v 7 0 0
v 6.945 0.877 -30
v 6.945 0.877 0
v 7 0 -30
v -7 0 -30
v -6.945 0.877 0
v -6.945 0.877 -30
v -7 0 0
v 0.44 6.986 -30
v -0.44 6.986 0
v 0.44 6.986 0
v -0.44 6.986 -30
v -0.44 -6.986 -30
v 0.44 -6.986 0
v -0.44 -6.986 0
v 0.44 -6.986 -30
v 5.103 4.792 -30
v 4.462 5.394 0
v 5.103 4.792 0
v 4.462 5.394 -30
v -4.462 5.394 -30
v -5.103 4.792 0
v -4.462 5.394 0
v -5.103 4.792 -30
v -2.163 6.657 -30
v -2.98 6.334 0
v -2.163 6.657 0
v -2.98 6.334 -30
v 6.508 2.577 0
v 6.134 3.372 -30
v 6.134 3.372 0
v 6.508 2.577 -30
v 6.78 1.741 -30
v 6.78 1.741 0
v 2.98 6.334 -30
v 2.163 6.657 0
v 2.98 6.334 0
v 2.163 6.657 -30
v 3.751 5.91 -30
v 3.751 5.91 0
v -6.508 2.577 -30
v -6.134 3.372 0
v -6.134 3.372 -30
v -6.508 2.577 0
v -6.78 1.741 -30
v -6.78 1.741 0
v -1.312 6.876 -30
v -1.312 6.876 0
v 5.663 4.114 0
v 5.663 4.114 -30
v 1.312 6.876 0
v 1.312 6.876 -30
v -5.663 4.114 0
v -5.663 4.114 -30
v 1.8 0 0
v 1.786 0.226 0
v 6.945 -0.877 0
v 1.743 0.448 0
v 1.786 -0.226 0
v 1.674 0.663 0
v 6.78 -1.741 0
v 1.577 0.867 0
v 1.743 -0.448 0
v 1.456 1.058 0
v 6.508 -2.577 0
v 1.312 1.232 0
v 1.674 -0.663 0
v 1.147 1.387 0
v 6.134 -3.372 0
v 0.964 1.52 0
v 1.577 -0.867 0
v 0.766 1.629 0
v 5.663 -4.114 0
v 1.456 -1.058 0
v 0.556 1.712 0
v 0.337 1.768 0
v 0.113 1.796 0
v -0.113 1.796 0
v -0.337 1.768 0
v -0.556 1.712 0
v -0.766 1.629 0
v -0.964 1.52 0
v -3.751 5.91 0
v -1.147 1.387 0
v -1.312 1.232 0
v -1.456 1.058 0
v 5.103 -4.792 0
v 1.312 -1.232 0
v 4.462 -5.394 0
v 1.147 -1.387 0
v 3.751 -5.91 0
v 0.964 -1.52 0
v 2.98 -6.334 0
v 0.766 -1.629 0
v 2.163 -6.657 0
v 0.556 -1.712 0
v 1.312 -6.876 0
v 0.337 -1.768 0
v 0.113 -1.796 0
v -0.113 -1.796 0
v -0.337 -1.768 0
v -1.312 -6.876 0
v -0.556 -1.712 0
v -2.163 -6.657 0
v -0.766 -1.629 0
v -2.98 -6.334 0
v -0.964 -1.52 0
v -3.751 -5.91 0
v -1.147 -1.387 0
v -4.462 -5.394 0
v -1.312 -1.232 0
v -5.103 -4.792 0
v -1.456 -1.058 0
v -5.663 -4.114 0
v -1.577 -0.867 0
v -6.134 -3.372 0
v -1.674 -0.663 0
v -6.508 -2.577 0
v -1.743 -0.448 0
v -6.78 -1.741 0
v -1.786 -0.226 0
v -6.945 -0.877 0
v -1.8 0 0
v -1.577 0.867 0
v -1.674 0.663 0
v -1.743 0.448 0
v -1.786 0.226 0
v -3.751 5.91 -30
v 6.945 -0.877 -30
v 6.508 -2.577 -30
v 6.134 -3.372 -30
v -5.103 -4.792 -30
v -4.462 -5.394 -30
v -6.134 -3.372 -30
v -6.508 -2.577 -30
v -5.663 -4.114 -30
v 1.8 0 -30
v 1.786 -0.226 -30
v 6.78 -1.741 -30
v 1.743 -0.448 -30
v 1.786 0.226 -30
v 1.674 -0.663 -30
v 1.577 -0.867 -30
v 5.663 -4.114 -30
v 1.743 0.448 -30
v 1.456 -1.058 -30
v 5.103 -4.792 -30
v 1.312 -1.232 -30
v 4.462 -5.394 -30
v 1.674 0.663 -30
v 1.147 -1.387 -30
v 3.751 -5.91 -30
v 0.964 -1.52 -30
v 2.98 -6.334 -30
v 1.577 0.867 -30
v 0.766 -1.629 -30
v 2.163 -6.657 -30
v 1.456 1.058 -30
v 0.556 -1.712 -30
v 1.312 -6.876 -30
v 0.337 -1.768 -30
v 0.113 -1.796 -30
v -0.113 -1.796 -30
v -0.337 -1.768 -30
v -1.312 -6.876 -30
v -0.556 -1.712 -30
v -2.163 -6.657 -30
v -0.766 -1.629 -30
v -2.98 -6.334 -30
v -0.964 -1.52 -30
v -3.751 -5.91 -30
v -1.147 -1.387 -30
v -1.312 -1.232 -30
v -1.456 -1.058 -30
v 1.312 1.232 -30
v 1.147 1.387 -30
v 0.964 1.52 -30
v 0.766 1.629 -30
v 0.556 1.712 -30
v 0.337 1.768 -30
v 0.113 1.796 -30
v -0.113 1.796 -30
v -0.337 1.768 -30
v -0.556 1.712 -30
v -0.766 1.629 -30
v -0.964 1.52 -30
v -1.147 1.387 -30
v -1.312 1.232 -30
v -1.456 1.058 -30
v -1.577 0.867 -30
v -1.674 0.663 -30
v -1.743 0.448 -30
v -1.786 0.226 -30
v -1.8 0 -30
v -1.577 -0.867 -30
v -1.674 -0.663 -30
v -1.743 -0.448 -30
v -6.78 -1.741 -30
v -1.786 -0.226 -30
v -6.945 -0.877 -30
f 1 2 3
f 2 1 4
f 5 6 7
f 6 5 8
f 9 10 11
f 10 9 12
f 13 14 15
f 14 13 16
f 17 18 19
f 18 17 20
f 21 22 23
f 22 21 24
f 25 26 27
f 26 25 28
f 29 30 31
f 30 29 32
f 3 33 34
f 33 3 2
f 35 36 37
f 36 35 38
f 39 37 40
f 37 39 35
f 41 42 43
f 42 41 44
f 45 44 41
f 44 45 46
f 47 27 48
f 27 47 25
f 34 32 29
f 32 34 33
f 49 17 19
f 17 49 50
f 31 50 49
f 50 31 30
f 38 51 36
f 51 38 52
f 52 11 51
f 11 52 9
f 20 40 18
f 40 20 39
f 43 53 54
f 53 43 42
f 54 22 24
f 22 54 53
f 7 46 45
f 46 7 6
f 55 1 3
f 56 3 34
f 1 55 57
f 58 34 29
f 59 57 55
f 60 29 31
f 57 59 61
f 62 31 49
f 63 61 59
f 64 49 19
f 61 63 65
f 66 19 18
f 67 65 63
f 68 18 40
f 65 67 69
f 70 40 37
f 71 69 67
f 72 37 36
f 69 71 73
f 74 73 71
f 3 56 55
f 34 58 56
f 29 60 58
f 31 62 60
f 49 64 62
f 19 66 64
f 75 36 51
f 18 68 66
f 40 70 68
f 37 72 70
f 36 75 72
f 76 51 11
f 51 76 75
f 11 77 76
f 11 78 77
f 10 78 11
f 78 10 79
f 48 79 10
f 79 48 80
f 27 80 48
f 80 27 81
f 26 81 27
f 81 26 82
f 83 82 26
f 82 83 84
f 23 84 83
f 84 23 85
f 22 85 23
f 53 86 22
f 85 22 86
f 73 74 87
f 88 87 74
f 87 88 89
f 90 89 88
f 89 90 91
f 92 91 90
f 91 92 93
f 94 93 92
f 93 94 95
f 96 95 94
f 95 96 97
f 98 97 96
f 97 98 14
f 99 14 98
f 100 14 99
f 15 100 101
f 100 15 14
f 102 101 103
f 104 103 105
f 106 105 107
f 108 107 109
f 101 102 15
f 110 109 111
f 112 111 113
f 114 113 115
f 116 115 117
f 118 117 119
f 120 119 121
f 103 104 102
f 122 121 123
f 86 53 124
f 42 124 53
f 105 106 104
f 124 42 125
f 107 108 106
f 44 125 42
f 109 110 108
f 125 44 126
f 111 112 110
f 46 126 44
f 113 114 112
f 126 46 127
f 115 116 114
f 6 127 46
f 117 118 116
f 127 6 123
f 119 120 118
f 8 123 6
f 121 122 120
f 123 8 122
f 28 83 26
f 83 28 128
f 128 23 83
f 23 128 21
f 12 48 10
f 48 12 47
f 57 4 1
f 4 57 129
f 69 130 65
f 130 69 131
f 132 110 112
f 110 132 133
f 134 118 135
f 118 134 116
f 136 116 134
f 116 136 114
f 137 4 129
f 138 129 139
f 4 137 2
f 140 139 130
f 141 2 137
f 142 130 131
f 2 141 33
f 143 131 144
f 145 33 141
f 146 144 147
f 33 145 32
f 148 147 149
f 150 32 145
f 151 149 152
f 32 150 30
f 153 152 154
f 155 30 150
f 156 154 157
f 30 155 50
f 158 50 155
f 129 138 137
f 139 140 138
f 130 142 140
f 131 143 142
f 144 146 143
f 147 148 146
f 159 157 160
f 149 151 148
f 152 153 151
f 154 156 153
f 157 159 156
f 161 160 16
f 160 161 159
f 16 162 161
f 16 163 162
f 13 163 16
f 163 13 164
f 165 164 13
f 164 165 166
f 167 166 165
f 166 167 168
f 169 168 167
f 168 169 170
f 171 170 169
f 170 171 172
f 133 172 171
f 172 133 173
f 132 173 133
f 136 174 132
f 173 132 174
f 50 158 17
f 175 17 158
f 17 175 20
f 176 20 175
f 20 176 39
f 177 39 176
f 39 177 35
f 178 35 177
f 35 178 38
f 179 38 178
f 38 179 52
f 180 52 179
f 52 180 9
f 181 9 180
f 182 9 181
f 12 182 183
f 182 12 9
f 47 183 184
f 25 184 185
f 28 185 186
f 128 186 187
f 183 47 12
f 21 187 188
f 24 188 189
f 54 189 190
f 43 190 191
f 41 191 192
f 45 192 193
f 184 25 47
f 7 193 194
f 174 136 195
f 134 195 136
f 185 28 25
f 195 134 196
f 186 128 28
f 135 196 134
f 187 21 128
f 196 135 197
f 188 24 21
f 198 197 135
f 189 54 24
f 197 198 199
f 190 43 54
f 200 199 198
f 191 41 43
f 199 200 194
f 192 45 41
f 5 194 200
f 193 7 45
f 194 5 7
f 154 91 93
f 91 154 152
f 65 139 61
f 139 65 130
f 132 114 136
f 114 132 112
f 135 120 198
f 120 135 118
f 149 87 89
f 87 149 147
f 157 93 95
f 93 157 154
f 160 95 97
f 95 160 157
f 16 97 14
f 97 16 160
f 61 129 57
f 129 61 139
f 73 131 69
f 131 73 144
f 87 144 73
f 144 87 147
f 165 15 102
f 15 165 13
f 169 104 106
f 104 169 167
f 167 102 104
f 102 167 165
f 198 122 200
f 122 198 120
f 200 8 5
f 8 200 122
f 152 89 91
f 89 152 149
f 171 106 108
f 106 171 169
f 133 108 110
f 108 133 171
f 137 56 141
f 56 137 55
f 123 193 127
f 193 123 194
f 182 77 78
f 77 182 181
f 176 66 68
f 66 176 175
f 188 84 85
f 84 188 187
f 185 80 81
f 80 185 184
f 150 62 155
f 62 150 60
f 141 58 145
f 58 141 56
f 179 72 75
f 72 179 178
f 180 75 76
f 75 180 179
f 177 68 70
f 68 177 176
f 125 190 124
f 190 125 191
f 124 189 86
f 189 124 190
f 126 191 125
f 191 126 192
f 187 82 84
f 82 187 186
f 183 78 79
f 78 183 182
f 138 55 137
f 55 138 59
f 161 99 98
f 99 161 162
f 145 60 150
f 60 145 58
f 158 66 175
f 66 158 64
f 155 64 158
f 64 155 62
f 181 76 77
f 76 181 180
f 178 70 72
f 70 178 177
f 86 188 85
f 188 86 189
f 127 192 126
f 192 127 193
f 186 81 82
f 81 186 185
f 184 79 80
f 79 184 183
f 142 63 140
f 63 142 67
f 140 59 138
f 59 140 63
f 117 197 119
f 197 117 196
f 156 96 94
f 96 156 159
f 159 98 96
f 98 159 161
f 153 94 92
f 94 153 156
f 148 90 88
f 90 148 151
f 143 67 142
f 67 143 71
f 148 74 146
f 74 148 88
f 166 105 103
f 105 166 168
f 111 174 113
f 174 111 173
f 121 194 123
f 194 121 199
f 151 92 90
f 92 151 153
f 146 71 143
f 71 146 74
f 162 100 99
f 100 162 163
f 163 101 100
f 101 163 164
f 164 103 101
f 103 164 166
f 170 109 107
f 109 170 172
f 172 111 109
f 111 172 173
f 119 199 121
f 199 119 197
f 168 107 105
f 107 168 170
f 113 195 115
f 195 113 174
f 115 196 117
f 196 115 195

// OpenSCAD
$fn = 50;


difference() {
	union() {
		translate(v = [0, 0, -30.0000000000]) {
			cylinder(h = 30, r = 7.0000000000);
		}
		cylinder(h = 0, r = 10.0000000000);
	}
	union() {
		#translate(v = [0, 0, -30]) {
			cylinder(h = 30, r = 1.8000000000);
		}
	}
}
